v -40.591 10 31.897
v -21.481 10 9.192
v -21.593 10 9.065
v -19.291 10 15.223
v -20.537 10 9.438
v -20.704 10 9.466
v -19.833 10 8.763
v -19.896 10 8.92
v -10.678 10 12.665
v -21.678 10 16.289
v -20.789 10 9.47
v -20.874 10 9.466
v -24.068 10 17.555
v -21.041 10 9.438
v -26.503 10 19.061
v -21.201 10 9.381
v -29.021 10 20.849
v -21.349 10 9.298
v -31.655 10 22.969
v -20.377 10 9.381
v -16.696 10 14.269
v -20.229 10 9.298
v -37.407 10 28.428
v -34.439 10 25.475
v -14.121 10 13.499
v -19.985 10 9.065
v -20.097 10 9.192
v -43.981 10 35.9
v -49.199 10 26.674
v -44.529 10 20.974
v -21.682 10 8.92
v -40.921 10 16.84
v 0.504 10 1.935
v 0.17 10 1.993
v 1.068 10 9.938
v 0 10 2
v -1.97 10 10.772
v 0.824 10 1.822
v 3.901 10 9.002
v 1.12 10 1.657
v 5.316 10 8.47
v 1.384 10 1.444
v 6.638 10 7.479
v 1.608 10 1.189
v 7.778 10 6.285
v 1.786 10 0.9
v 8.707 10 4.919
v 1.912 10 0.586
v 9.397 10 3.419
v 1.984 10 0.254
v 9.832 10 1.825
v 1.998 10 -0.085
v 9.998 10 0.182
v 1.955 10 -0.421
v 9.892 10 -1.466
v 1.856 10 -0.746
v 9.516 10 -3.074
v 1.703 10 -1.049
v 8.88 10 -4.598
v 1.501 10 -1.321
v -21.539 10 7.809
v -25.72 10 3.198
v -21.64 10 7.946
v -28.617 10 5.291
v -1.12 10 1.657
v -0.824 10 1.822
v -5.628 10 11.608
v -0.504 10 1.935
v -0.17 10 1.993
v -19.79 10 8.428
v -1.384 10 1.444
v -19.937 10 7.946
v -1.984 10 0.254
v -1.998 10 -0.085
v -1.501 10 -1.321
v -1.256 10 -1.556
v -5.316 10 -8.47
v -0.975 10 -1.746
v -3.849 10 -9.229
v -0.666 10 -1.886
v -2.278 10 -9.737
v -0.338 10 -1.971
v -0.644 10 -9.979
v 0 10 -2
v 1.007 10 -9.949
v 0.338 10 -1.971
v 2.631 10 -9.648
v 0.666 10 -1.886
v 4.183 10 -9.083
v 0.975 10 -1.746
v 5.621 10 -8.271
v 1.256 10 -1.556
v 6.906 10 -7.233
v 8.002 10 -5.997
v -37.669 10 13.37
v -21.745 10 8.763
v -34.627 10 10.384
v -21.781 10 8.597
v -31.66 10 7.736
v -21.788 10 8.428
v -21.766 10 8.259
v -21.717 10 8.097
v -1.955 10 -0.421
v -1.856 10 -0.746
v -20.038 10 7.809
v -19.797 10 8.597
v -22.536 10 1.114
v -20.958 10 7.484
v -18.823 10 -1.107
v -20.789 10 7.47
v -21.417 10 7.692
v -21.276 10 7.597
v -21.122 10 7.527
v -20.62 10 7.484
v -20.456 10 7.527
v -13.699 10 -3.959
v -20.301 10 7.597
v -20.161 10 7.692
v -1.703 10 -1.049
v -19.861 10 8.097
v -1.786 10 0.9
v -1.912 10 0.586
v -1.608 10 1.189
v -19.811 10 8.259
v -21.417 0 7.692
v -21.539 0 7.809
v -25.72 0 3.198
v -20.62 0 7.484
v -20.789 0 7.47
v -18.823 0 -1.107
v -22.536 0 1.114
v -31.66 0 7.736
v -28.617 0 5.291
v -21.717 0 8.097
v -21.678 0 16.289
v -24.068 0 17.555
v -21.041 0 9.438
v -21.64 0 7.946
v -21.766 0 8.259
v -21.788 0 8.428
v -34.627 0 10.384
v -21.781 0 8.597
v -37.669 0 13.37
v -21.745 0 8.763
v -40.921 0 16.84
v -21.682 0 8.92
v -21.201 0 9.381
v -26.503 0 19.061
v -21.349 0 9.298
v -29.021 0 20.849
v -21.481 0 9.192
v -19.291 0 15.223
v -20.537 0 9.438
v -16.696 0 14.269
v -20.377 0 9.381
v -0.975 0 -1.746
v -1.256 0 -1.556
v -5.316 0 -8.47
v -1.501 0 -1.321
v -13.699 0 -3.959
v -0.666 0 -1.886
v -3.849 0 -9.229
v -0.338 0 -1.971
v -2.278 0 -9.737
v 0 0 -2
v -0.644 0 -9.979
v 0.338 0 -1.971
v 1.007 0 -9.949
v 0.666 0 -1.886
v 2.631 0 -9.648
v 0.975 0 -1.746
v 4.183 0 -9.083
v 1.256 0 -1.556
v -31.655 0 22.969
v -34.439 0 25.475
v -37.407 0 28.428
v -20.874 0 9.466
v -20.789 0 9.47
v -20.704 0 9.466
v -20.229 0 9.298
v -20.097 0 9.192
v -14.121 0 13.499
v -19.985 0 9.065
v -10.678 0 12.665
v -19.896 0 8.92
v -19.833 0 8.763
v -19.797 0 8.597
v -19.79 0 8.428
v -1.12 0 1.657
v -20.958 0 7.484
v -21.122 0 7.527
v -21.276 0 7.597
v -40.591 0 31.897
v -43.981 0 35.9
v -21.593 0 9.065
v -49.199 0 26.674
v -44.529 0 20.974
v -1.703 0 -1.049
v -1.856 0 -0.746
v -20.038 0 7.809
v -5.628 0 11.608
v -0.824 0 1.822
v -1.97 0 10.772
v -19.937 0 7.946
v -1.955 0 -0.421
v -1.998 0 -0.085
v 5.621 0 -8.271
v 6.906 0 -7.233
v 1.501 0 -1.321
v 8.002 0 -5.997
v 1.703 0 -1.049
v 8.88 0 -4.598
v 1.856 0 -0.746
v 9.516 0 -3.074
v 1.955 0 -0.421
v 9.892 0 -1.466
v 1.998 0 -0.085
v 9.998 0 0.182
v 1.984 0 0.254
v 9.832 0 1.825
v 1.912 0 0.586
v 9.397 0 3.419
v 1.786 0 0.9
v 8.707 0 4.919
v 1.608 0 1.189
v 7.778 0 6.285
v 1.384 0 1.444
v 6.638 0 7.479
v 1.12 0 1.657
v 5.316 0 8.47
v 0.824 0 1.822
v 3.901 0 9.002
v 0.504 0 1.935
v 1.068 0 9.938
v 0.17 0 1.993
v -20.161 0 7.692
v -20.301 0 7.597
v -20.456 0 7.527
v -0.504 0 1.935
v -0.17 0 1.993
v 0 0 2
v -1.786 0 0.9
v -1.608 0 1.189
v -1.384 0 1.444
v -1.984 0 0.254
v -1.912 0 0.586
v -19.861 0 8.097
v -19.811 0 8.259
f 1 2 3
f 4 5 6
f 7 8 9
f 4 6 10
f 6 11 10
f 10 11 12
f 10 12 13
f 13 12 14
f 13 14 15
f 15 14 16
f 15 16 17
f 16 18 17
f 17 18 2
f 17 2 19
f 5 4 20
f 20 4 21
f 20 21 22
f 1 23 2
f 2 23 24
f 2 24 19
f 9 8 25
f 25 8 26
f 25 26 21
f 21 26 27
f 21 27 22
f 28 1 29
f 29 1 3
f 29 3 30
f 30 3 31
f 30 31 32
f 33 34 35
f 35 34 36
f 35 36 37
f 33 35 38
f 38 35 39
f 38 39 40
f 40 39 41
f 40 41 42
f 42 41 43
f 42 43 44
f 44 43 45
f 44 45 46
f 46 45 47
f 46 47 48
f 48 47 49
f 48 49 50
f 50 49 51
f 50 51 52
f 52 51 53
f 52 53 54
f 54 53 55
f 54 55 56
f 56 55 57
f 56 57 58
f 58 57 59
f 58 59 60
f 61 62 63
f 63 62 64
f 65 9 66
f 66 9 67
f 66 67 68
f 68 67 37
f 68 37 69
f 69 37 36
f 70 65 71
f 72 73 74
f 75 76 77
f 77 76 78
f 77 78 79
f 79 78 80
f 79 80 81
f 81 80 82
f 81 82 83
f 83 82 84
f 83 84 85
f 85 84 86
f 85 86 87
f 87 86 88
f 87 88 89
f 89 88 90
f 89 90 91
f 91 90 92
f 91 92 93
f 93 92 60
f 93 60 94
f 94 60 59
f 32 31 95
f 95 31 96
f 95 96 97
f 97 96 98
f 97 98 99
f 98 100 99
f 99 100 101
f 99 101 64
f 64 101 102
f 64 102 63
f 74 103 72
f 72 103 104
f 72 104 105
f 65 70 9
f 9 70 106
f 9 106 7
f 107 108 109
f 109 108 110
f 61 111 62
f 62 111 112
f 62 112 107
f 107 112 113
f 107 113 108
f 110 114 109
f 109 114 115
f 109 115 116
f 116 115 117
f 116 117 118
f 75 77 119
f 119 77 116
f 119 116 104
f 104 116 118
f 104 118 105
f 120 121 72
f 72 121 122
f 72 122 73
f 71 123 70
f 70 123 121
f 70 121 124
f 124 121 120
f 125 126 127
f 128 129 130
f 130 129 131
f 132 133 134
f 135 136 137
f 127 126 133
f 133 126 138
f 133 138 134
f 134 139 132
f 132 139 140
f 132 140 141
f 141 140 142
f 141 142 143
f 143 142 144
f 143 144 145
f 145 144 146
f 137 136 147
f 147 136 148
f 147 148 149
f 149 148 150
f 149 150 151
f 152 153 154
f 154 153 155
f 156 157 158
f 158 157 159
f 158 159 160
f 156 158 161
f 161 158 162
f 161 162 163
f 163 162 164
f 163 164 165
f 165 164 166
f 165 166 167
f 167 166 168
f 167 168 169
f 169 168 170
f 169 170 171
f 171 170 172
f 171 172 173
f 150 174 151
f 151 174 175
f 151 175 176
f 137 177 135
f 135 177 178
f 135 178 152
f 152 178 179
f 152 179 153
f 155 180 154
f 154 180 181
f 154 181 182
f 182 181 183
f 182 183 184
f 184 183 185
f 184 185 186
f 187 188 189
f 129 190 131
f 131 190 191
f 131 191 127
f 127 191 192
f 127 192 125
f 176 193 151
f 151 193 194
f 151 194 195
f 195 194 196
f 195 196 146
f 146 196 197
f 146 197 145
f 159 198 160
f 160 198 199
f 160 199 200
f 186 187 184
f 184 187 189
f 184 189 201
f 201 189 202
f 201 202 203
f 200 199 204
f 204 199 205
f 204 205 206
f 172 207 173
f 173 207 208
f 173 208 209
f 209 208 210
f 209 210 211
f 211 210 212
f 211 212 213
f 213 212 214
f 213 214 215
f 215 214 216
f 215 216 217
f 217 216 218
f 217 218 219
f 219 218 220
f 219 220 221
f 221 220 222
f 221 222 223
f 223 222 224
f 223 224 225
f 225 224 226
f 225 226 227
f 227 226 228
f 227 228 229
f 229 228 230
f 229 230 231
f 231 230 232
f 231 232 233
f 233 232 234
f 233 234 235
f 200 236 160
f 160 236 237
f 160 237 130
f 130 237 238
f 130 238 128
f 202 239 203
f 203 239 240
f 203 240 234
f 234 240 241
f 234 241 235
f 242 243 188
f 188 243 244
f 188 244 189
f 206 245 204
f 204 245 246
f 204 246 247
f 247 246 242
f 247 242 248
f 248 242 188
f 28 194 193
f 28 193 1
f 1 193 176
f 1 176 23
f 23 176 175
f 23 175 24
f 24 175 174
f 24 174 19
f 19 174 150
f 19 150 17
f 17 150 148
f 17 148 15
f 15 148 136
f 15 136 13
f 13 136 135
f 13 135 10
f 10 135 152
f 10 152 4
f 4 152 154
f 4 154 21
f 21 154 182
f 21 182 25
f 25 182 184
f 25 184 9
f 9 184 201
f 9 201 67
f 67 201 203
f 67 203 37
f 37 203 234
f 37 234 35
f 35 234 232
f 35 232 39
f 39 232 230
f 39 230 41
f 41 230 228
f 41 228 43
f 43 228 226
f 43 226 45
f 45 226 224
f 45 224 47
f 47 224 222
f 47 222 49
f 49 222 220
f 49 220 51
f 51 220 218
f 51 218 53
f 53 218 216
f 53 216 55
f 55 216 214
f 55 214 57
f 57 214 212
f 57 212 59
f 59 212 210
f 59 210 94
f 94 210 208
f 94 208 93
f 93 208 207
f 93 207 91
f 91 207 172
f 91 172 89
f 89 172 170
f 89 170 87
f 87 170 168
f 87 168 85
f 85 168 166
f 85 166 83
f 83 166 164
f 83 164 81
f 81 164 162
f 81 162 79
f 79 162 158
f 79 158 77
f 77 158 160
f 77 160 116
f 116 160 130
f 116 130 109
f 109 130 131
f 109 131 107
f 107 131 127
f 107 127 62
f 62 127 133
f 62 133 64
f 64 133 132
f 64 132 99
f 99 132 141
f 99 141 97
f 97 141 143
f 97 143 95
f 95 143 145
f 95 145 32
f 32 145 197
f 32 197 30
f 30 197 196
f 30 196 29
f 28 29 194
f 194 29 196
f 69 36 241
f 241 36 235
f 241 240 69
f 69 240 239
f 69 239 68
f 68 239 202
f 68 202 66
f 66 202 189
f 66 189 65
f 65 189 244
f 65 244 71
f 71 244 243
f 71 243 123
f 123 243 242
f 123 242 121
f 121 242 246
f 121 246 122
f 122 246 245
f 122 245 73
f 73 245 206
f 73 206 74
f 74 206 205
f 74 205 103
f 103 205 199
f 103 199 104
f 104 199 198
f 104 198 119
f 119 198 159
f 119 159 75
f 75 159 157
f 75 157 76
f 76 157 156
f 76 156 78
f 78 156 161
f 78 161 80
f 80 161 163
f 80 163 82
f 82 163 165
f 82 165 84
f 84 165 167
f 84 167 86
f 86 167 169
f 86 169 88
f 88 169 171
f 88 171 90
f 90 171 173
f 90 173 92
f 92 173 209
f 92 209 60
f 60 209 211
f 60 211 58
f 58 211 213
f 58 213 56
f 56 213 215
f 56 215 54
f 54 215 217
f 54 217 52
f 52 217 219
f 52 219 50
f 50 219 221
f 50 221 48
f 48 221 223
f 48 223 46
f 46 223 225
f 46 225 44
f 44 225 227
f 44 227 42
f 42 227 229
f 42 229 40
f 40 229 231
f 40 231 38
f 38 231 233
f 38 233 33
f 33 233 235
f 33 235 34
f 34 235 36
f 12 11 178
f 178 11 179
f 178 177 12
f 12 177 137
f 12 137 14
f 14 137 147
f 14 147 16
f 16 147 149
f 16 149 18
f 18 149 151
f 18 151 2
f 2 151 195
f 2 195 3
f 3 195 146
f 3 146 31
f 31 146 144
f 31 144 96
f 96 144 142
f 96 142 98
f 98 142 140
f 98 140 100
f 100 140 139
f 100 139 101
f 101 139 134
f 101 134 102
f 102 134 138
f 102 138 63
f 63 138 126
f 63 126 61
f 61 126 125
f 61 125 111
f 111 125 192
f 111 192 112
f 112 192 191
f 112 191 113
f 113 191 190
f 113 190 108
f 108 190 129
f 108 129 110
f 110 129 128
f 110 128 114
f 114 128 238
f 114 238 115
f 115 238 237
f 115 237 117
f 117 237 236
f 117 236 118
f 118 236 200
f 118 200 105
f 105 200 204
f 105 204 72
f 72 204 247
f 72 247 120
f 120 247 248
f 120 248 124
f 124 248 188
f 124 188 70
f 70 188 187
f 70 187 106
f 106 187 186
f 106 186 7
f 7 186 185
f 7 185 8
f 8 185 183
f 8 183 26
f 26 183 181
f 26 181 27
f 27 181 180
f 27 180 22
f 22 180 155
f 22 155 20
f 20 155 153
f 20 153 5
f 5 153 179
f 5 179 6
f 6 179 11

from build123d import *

# Parameters (mm, degrees)
SKETCH1_R           = 2
SKETCH1_R_2         = 1
BOSS_EXTRUDE1_DEPTH = 10


with BuildPart() as part:
    # Sketch1 → Boss-Extrude1 (new body)
    with BuildSketch(Plane(origin=(0, 0, 0), x_dir=(1, 0, 0), z_dir=(0, 1, 0))):
        with BuildLine():
            Line((-43.980681388, -35.900071191), (-49.199029144, -26.673592784))
            add(Edge.make_bspline(
                [(-49.199029144, -26.673592784), (-31.845281334, -4.900517613), (-24.966664763, -2.13955382), (-5.316002055, 8.469954082)],
                knots=[0, 0, 0, 0, 1, 1, 1, 1], degree=3))
            ThreePointArc((-5.316002055, 8.469954082), (8.469954082, 5.316002055), (5.316002055, -8.469954082))
            add(Edge.make_bspline(
                [(-43.980681388, -35.900071191), (-21.812551229, -8.740215805), (-12.045610471, -15.281217208), (5.316002055, -8.469954082)],
                knots=[0, 0, 0, 0, 1, 1, 1, 1], degree=3))
        make_face()
        Circle(SKETCH1_R, mode=Mode.SUBTRACT)
        with Locations((-20.788744537, -8.469954082)):
            Circle(SKETCH1_R_2, mode=Mode.SUBTRACT)
    extrude(amount=BOSS_EXTRUDE1_DEPTH)


solid = part.part
